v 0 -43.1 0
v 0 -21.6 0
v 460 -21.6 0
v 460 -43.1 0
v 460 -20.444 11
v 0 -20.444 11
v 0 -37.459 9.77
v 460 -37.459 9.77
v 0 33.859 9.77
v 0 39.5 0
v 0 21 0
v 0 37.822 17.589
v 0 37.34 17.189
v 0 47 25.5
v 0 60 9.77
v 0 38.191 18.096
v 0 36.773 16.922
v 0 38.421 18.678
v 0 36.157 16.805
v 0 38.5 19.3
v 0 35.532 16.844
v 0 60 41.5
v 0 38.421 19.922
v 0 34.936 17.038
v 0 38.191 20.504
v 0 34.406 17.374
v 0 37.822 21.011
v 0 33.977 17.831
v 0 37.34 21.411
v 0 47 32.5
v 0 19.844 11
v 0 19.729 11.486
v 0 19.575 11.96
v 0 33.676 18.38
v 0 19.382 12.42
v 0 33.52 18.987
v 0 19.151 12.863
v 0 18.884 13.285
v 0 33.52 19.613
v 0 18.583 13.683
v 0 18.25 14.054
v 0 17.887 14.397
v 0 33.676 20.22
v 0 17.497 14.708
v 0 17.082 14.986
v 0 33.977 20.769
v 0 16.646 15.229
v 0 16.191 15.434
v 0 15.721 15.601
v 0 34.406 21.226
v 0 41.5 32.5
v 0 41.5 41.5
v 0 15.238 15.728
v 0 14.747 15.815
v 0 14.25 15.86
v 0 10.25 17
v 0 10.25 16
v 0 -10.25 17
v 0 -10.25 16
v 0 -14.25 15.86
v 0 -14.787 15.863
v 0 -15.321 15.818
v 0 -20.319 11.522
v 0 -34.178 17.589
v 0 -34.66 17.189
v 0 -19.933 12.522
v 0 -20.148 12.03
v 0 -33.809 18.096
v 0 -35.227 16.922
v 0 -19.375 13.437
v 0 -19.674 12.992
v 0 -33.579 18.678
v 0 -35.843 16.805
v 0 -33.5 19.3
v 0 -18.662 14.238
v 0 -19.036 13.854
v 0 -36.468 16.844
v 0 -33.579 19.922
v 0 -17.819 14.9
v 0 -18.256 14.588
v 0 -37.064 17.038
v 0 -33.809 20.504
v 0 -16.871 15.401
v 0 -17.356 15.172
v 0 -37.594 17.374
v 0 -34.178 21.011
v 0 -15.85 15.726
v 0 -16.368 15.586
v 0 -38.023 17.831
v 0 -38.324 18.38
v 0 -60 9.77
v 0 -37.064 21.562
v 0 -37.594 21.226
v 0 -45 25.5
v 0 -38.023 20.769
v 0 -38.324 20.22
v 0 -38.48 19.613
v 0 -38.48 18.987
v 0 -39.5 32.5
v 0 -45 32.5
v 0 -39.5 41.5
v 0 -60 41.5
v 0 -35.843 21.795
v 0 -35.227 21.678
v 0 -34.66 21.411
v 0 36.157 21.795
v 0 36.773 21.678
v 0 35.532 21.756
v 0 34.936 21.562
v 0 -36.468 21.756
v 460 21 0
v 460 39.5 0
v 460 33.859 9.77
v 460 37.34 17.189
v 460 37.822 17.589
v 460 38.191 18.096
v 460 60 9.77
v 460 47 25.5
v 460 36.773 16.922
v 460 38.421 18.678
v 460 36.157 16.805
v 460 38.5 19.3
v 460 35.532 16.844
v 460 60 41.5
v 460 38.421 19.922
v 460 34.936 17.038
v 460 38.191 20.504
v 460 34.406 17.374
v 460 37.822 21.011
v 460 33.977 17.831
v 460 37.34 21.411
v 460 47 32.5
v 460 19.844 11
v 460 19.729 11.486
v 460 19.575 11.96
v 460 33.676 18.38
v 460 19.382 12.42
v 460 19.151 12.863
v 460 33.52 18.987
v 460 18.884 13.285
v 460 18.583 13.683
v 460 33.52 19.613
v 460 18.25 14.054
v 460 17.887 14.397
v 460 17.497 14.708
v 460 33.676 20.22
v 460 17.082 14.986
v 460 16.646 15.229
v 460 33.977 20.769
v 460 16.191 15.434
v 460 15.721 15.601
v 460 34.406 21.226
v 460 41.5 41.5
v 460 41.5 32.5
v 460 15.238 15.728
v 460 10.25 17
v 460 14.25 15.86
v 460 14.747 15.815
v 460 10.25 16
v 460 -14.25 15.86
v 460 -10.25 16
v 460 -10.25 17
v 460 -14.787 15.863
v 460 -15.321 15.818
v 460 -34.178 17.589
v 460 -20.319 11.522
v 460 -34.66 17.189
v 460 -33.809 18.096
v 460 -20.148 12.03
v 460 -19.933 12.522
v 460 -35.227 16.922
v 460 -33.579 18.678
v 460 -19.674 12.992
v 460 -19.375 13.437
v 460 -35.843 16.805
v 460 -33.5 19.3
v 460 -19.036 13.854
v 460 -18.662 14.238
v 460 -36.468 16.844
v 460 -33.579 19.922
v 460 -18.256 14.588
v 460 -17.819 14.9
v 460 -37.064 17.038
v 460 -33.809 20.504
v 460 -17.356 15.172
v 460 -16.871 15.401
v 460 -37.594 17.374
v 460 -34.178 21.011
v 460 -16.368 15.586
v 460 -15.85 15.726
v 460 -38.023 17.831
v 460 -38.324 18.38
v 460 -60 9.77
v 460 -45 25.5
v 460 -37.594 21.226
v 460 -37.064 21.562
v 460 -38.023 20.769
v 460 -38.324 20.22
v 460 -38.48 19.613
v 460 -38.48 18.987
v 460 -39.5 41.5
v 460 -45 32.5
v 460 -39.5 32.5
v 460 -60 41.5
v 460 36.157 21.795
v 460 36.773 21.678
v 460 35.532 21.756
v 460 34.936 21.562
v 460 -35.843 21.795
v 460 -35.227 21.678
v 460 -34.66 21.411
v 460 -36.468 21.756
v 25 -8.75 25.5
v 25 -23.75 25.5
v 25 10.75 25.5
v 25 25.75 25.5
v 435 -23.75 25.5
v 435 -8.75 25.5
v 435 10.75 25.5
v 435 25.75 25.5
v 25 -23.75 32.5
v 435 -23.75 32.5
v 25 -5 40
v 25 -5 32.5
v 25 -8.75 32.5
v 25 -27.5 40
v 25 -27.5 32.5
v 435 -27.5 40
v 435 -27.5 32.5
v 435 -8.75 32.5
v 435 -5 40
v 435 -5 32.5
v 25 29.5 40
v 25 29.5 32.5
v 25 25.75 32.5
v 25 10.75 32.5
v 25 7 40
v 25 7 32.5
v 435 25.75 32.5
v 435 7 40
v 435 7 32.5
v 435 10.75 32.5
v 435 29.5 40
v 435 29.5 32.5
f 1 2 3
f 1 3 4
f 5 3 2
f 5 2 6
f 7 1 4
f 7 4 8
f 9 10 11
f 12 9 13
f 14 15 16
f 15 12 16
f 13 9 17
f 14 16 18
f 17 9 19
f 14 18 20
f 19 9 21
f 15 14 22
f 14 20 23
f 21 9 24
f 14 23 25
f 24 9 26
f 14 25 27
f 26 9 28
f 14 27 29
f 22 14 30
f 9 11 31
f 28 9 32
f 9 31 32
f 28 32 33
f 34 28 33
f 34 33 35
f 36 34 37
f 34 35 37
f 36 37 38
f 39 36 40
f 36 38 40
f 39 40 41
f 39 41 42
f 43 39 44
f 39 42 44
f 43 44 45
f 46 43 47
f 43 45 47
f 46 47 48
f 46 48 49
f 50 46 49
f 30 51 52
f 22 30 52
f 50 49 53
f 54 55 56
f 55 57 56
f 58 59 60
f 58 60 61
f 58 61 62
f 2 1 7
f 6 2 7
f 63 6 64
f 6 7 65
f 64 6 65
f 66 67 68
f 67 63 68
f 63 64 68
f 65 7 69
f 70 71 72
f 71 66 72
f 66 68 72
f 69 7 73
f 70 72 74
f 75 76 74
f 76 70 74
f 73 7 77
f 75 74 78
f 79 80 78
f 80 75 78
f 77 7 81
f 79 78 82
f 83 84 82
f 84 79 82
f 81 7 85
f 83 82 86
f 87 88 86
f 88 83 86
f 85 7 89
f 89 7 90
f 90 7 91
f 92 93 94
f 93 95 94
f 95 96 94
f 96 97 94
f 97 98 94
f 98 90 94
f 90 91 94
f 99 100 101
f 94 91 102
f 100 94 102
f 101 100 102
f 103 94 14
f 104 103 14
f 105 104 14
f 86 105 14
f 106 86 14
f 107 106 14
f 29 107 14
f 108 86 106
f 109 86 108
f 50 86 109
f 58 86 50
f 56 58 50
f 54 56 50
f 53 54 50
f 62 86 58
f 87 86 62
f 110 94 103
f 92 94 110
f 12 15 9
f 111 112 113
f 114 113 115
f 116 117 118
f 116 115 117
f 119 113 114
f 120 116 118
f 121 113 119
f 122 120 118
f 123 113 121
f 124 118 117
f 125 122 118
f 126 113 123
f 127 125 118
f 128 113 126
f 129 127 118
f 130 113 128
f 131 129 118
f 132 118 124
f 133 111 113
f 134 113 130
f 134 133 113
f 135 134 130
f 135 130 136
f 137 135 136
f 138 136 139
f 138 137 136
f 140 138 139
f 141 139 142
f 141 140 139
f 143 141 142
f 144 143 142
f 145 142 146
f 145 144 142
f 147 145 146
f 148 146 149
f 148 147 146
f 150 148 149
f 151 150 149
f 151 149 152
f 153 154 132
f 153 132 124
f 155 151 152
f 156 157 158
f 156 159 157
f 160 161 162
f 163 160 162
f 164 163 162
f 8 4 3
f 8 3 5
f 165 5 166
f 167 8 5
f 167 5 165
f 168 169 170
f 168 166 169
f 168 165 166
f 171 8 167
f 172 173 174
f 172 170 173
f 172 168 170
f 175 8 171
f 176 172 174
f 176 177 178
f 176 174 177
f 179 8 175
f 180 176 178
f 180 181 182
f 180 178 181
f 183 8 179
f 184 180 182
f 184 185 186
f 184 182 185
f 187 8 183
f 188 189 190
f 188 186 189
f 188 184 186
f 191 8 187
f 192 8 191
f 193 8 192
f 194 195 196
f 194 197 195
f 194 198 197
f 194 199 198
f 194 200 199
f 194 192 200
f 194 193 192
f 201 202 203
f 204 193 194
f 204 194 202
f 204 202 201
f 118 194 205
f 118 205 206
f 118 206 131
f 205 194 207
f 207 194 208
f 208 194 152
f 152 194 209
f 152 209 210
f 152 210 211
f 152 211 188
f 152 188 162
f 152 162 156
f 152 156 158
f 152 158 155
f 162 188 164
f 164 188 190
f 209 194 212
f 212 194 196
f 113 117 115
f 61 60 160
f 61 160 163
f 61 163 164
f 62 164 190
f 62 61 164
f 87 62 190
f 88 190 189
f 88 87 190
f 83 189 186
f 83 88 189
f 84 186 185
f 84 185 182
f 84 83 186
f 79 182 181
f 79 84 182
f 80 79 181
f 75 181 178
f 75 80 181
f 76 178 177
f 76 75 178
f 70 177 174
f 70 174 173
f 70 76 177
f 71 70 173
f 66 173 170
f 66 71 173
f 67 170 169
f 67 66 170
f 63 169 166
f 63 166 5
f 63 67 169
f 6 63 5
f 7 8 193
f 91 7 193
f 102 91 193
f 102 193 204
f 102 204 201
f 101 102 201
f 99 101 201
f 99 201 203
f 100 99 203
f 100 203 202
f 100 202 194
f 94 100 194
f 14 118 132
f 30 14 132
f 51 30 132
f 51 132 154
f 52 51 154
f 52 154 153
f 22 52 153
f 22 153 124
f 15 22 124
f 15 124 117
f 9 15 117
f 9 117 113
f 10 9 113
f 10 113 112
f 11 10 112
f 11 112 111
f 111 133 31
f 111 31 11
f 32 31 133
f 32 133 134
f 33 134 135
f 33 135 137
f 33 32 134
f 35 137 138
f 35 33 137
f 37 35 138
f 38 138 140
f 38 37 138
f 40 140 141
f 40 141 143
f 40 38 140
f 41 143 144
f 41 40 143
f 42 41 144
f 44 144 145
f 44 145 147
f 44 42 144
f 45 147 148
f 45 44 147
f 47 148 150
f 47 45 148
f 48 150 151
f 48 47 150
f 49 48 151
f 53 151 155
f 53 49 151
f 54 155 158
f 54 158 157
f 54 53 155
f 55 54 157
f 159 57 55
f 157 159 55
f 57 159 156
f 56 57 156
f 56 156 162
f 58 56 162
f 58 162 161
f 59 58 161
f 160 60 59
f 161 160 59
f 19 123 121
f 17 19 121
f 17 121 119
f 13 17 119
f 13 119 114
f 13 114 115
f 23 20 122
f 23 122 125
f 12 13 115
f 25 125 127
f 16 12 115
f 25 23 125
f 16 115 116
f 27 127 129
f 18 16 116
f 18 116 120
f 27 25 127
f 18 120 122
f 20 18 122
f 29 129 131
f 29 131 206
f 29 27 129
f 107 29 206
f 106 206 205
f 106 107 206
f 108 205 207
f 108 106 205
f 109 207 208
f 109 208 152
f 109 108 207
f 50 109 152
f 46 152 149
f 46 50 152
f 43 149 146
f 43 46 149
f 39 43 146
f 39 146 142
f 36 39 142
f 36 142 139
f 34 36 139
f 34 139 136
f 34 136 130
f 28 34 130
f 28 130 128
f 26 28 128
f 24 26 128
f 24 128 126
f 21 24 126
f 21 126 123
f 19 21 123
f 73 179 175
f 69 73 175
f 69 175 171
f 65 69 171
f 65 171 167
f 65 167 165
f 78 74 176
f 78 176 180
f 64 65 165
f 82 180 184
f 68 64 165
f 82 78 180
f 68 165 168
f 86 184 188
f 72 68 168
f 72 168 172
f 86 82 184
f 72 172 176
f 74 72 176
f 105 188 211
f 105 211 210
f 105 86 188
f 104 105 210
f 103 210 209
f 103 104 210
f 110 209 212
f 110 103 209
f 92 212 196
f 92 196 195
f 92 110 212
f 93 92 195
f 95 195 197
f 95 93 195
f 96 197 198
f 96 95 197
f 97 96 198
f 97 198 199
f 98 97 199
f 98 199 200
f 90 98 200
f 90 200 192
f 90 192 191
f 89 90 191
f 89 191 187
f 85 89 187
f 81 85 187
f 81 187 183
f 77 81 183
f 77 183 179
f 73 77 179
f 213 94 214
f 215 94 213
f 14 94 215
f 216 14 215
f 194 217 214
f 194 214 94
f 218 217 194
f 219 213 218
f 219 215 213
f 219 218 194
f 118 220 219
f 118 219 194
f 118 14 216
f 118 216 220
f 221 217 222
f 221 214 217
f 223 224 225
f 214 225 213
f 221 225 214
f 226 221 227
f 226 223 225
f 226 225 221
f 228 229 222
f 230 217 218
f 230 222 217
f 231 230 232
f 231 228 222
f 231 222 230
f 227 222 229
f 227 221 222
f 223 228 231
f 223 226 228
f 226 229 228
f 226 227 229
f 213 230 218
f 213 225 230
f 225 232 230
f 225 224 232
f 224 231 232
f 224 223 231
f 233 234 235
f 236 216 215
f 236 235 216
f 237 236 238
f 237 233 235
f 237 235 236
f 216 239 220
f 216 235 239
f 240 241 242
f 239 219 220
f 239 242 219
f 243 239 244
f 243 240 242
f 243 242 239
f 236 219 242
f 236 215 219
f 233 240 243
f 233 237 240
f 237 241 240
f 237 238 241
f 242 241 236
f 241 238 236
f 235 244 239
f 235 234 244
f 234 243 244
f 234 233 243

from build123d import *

# Parameters (mm, degrees)
SKETCH_R     = 2.5
PAD_DEPTH    = 460
SKETCH001_W  = 70
SKETCH001_H  = 25
POCKET_DEPTH = 14.5


with BuildPart() as part:
    # Sketch → Pad (new body)
    with BuildSketch(Plane.YZ):
        with BuildLine():
            Line((-43.1, 0), (-37.459288, 9.77))
            Line((-37.459288, 9.77), (-60, 9.77))
            Line((-60, 9.77), (-60, 41.5))
            Line((-60, 41.5), (-39.5, 41.5))
            Line((-39.5, 41.5), (-39.5, 32.5))
            Line((-39.5, 32.5), (-45, 32.5))
            Line((-45, 32.5), (-45, 25.5))
            Line((-45, 25.5), (-23.75, 25.5))
            Line((-23.75, 25.5), (-23.75, 32.5))
            Line((-23.75, 32.5), (-27.5, 32.5))
            Line((-27.5, 32.5), (-27.5, 40))
            Line((-27.5, 40), (-5, 40))
            Line((-5, 40), (-5, 32.5))
            Line((-5, 32.5), (-8.75, 32.5))
            Line((-8.75, 32.5), (-8.75, 25.5))
            Line((-8.75, 25.5), (10.75, 25.5))
            Line((10.75, 25.5), (10.75, 32.5))
            Line((7, 32.5), (10.75, 32.5))
            Line((7, 32.5), (7, 40))
            Line((7, 40), (29.5, 40))
            Line((29.5, 40), (29.5, 32.5))
            Line((29.5, 32.5), (25.75, 32.5))
            Line((25.75, 32.5), (25.75, 25.5))
            Line((25.75, 25.5), (47, 25.5))
            Line((47, 25.5), (47, 32.5))
            Line((47, 32.5), (41.5, 32.5))
            Line((41.5, 32.5), (41.5, 41.5))
            Line((41.5, 41.5), (60, 41.5))
            Line((60, 41.5), (60, 9.77))
            Line((60, 9.77), (33.859288, 9.77))
            Line((33.859288, 9.77), (39.5, 0))
            Line((39.5, 0), (21, 0))
            Line((19.843853, 11), (21, 0))
            ThreePointArc((19.843853, 11), (17.886929, 14.396937), (14.25, 15.860317))
            Line((10.25, 16), (14.25, 15.860317))
            Line((10.25, 16), (10.25, 17))
            Line((10.25, 17), (-10.25, 17))
            Line((-10.25, 17), (-10.25, 16))
            Line((-14.25, 15.860317), (-10.25, 16))
            ThreePointArc((-14.25, 15.860317), (-18.255593, 14.588138), (-20.443853, 11))
            Line((-21.6, 0), (-20.443853, 11))
            Line((-21.6, 0), (-43.1, 0))
        make_face()
        with Locations((36, 19.3)):
            Circle(SKETCH_R, mode=Mode.SUBTRACT)
        with Locations((-36, 19.3)):
            Circle(SKETCH_R, mode=Mode.SUBTRACT)
    extrude(amount=PAD_DEPTH)

    # Sketch001 → Pocket (cut)
    with BuildSketch(Plane(origin=(0, 0, 40), x_dir=(0, -1, 0), z_dir=(0, 0, 1))):
        with Locations((0, 12.5)):
            Rectangle(SKETCH001_W, SKETCH001_H)
        with Locations((0, 447.5)):
            Rectangle(SKETCH001_W, SKETCH001_H)
    extrude(amount=-POCKET_DEPTH, mode=Mode.SUBTRACT)


solid = part.part
